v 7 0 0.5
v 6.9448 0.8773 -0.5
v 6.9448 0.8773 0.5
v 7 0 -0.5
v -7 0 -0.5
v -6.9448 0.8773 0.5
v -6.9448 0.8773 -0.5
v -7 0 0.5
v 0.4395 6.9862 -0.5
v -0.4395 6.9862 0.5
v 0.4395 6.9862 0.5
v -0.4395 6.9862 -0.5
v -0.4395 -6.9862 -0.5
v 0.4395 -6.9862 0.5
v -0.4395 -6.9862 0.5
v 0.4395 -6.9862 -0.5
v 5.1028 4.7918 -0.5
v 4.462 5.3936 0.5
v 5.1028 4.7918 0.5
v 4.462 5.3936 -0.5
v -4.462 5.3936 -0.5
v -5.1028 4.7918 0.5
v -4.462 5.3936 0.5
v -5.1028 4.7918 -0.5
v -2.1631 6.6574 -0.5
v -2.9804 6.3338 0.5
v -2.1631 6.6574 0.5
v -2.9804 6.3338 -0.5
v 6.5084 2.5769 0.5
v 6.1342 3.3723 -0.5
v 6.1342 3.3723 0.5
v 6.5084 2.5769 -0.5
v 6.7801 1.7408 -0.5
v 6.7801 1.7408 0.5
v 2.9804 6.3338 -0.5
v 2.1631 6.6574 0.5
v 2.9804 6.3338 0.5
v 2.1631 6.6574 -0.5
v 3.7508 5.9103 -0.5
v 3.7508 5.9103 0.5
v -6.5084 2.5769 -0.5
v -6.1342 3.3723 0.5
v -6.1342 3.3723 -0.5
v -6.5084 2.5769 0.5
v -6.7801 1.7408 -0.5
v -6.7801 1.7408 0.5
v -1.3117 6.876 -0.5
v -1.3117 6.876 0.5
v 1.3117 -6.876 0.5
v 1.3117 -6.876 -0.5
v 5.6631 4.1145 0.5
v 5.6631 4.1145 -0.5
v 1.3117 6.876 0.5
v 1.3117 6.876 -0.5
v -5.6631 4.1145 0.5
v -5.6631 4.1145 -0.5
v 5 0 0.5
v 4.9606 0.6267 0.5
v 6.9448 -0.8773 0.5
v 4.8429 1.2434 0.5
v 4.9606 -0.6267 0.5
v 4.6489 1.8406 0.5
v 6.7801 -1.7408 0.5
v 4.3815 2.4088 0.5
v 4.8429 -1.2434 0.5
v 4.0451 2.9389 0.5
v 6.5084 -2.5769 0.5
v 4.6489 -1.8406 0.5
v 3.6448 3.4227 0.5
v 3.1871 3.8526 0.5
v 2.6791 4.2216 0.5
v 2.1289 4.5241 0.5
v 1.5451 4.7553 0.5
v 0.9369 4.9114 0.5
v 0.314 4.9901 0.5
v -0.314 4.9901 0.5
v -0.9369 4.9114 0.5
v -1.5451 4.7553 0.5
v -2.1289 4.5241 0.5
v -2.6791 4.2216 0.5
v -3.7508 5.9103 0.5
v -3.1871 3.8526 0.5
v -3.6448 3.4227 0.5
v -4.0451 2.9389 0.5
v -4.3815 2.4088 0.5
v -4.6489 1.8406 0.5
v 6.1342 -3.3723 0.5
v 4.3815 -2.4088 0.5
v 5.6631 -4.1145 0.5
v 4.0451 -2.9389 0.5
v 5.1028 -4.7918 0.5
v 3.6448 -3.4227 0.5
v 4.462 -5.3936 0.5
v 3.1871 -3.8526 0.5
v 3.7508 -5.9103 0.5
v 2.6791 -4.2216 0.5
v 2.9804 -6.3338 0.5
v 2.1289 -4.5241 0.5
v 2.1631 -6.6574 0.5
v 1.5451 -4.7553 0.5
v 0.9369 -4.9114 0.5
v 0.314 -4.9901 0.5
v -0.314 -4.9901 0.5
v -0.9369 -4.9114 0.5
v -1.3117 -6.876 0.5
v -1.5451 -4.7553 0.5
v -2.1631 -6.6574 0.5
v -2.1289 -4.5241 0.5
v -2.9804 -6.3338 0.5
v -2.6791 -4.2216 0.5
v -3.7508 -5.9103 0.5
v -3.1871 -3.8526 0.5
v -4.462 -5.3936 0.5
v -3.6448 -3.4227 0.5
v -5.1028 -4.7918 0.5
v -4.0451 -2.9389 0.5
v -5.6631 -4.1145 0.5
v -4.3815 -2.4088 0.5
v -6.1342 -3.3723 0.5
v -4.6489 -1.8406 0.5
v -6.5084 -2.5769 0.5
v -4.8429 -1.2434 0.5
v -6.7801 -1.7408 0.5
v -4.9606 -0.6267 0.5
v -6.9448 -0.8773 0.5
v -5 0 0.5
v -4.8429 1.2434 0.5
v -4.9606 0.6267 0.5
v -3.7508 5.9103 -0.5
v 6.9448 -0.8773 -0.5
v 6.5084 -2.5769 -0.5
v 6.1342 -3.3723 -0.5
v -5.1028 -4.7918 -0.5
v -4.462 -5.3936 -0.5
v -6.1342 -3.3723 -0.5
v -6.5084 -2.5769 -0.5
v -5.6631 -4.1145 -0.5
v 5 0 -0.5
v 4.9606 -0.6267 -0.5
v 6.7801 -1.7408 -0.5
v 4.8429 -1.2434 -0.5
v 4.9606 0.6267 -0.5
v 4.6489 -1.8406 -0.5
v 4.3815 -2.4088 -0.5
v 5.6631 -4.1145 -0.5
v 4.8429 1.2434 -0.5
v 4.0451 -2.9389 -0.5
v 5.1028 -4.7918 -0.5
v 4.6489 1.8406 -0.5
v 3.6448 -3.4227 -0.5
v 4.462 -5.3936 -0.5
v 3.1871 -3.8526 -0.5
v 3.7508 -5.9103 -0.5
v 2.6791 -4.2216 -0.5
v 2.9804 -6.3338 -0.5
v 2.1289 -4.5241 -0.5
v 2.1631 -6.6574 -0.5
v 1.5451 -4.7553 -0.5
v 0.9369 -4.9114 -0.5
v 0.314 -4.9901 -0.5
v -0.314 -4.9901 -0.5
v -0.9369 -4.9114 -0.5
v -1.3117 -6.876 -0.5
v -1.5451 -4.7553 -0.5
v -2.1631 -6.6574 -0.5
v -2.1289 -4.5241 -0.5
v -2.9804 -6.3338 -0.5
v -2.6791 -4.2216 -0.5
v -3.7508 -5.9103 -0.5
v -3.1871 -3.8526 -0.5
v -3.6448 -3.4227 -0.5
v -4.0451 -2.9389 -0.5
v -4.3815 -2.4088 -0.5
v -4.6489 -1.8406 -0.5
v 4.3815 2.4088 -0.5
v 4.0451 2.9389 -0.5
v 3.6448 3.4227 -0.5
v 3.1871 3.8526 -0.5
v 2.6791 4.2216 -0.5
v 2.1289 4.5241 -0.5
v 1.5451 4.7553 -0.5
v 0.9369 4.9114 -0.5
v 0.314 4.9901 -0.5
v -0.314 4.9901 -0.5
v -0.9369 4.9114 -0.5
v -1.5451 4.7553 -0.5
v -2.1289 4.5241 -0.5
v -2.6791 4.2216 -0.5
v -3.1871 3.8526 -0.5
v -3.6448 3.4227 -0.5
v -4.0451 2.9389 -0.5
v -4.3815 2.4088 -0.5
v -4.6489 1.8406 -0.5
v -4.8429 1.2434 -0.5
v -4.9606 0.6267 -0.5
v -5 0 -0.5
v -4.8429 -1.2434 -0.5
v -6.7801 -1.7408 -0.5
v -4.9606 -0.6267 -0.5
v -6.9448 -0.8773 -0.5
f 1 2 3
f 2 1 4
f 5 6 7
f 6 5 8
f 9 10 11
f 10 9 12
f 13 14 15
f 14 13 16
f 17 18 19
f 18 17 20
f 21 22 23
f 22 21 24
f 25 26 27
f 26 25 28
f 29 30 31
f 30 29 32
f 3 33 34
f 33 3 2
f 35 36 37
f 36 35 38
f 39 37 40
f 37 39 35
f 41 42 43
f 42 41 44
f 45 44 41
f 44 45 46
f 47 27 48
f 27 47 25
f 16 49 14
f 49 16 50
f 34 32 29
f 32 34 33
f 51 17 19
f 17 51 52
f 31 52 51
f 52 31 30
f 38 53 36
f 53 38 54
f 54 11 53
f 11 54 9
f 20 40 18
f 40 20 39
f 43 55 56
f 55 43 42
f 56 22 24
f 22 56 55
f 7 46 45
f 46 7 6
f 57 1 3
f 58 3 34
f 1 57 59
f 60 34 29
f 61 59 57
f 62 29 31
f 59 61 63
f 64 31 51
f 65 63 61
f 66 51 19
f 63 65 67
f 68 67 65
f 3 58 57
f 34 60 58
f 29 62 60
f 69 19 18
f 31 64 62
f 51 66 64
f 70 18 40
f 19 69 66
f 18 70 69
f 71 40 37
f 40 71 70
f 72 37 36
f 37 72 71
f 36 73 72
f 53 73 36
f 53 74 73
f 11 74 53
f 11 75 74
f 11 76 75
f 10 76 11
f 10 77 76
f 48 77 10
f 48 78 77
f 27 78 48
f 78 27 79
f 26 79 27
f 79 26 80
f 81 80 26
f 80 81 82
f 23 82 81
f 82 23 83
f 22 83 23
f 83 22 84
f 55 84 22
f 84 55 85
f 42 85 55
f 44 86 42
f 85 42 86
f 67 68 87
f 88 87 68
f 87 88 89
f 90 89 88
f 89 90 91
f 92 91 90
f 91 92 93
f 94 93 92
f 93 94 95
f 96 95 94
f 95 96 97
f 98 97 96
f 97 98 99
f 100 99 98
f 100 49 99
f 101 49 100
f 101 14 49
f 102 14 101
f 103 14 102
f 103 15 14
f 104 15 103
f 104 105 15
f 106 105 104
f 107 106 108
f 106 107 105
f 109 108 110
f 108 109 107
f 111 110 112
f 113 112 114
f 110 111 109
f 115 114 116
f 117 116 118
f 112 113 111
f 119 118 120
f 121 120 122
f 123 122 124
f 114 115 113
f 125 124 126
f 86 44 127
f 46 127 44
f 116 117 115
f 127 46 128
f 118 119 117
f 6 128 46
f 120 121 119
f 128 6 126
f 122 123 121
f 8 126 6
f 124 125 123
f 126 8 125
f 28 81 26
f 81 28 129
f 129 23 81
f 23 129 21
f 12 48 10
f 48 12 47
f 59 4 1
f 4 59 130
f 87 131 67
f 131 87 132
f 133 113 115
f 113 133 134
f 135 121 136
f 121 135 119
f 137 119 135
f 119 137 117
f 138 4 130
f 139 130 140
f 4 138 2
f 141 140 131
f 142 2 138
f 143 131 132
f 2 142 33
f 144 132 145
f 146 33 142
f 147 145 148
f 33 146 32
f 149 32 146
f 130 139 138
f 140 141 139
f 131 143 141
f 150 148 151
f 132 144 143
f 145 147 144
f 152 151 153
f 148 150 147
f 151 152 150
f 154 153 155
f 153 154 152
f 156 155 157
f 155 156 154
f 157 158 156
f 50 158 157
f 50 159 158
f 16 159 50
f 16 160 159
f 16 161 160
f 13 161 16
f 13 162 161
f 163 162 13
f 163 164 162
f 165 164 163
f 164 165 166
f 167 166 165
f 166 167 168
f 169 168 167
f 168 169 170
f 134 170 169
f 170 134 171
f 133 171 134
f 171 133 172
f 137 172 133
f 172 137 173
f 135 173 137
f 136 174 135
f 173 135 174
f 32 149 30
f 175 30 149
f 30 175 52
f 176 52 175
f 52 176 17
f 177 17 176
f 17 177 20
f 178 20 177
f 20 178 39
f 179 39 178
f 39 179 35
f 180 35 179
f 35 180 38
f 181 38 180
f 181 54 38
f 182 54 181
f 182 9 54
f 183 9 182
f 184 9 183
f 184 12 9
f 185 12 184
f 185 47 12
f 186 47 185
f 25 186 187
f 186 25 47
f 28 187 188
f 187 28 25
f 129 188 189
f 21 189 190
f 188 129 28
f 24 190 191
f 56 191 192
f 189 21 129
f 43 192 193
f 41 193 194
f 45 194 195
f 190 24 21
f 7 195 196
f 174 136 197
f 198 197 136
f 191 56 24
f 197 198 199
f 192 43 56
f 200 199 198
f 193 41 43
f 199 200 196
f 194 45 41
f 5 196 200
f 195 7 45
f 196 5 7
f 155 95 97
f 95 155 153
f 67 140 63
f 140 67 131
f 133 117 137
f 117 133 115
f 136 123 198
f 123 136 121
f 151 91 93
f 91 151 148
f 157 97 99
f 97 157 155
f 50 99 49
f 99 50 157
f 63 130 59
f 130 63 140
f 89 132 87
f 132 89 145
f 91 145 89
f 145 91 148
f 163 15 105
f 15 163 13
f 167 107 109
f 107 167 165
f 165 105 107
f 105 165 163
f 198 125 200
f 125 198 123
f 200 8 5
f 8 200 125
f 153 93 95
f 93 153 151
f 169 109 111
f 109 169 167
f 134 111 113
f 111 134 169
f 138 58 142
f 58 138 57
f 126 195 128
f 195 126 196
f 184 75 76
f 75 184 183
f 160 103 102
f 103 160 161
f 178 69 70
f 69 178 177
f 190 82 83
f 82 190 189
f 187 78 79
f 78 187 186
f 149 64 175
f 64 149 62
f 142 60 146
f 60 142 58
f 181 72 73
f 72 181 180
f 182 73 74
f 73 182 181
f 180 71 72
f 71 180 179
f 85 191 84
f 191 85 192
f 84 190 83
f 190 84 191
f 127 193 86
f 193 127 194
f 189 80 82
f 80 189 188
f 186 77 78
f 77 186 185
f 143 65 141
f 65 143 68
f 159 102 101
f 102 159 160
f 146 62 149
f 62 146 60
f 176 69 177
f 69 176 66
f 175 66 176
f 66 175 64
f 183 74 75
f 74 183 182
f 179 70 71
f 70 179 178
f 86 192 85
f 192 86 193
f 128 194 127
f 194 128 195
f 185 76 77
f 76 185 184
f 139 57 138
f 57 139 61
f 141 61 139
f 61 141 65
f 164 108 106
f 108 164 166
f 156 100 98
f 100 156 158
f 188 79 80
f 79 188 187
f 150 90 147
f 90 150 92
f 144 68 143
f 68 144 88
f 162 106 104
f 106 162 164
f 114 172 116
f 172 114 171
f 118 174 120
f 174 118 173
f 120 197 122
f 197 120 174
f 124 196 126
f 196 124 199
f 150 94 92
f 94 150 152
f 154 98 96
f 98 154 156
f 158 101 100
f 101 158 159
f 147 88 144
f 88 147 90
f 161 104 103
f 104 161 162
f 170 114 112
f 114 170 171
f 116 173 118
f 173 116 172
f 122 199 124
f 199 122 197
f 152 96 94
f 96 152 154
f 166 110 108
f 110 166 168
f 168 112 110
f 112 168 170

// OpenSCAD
$fn = 50;


difference() {
	union() {
		translate(v = [0, 0, -0.5000000000]) {
			cylinder(h = 1, r = 7.0000000000);
		}
	}
	union() {
		translate(v = [0, 0, -100.0000000000]) {
			cylinder(h = 200, r = 5);
		}
	}
}
